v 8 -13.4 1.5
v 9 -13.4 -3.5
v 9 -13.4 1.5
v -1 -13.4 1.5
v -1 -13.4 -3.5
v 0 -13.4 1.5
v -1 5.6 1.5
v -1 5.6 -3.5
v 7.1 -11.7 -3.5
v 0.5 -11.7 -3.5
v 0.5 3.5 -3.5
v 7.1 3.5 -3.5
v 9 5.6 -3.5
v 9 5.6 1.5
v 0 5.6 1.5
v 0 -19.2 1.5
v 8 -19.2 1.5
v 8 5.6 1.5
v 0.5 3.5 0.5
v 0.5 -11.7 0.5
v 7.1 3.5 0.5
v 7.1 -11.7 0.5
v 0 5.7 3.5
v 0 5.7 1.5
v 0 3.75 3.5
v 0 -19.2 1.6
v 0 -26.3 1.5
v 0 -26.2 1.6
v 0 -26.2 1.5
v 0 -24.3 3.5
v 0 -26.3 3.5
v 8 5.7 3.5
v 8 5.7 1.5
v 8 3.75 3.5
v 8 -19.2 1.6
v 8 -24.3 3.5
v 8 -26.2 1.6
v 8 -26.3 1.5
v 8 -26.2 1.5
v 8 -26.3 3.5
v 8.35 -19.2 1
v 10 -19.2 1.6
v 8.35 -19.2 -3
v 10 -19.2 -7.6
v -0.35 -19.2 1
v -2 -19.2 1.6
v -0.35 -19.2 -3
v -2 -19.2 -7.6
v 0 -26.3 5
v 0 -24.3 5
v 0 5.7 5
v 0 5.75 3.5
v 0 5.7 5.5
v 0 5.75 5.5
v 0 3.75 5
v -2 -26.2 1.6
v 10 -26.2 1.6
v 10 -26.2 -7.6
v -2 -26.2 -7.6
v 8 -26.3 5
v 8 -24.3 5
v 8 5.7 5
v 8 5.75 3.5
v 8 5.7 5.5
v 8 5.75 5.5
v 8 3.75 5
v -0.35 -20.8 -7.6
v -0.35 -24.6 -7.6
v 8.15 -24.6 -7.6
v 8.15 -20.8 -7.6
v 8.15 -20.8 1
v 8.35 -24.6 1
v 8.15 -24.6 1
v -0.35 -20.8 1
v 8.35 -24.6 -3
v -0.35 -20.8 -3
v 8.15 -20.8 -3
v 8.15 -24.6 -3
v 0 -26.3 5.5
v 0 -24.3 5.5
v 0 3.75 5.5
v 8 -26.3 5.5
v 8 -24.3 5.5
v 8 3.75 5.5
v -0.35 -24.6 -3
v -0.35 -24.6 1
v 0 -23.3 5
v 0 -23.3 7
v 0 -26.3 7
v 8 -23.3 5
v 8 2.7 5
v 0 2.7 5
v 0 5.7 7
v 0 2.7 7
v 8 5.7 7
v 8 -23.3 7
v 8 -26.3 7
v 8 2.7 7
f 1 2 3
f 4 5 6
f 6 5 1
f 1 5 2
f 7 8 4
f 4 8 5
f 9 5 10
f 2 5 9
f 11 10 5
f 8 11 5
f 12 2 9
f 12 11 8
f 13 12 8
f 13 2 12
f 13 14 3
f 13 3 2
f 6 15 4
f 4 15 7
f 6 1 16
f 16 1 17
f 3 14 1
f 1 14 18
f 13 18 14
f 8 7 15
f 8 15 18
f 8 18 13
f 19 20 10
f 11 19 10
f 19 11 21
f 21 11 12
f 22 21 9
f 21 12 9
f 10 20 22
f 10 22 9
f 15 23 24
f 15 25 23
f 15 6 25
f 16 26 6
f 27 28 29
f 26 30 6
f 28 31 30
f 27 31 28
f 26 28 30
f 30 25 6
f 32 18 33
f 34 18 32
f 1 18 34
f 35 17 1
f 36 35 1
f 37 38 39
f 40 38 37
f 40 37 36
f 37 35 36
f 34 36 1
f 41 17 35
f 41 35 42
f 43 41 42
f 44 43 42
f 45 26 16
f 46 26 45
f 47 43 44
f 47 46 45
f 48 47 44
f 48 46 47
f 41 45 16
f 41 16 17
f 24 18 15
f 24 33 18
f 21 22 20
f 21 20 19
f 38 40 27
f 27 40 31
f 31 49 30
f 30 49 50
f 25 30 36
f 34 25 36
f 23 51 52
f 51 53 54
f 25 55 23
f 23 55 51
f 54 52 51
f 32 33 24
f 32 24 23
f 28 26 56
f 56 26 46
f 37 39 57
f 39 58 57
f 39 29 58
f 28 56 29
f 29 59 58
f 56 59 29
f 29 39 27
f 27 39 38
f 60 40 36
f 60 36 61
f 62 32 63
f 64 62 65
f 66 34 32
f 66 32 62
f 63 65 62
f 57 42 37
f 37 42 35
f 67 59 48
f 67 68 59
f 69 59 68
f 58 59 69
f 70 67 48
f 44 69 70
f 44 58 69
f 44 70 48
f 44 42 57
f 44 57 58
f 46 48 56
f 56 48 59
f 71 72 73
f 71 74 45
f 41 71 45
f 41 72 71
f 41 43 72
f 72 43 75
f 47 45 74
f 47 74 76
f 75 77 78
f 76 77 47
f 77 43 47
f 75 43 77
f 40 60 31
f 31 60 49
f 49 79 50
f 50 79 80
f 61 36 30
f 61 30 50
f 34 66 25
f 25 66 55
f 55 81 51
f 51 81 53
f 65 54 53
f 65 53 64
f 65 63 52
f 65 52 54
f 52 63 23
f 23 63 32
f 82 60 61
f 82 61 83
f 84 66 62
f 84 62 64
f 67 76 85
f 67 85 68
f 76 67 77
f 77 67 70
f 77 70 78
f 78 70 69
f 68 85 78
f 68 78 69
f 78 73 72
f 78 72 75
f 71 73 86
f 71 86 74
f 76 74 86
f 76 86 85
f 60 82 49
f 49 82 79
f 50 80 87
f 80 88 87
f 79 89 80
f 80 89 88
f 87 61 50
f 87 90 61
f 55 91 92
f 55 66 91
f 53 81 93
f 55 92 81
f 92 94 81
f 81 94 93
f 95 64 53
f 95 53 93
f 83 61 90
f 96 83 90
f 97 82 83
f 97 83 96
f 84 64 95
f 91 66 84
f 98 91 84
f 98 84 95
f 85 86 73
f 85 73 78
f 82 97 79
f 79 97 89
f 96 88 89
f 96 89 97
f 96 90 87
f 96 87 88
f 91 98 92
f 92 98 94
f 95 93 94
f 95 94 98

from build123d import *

# Parameters (mm, degrees)
BOX018_W               = 5.8
BOX018_H               = 8.7
BOX018_DEPTH           = 4
BOX019_W               = 1.6
BOX019_H               = 3.6
BOX019_DEPTH           = 8.5
BOX016_W               = 3.8
BOX016_H               = 8.5
BOX016_DEPTH           = 9.3
BOX017_W               = 7
BOX017_H               = 12
BOX017_DEPTH           = 9.2
CUT002_ROLL_ANGLE      = 180
CUT002_PLACEMENT_ANGLE = 90
BOX010_W               = 8
BOX010_H               = 3
BOX010_DEPTH           = 2
BOX009_W               = 8
BOX009_H               = 2
BOX009_DEPTH           = 2
BOX011_W               = 8
BOX011_H               = 2
BOX011_DEPTH           = 2
BOX012_W               = 8
BOX012_H               = 3
BOX012_DEPTH           = 2
BOX013_W               = 8
BOX013_H               = 32
BOX013_DEPTH           = 2
BOX014_W               = 15.2
BOX014_H               = 6.6
BOX014_DEPTH           = 4.5
BOX015_W               = 19
BOX015_H               = 10
BOX015_DEPTH           = 5
CUT001_ROLL_ANGLE      = 180
CUT001_PLACEMENT_ANGLE = 90


with BuildPart() as cube017:
    # Box018 → Box018 (new body)
    with BuildSketch(Plane.XY):
        with Locations((2.9, 4.35)):
            Rectangle(BOX018_W, BOX018_H)
    extrude(amount=BOX018_DEPTH)


with BuildPart() as cube018:
    # Box019 → Box019 (new body)
    with BuildSketch(Plane(origin=(1.1, 2.5, 1), x_dir=(1, 0, 0), z_dir=(0, 0, 1))):
        with Locations((0.8, 1.8)):
            Rectangle(BOX019_W, BOX019_H)
    extrude(amount=BOX019_DEPTH)


with BuildPart() as fusion008:
    # Box016 → Box016 (new body)
    with BuildSketch(Plane.XY):
        with Locations((1.9, 4.25)):
            Rectangle(BOX016_W, BOX016_H)
    extrude(amount=BOX016_DEPTH)

    # Fusion008: union Cube017, Cube018
    add(cube017.part)
    add(cube018.part)


with BuildPart() as cut002:
    # Box017 → Box017 (new body)
    with BuildSketch(Plane(origin=(-1.6, -1.65, -0.6), x_dir=(1, 0, 0), z_dir=(0, 0, 1))):
        with Locations((3.5, 6)):
            Rectangle(BOX017_W, BOX017_H)
    extrude(amount=BOX017_DEPTH)

    # Cut002: cut Fusion008
    add(fusion008.part, mode=Mode.SUBTRACT)


with BuildPart() as cut002_1:
    # Cut002 roll: moved
    add(cut002.part.rotate(Axis((0, 0, 0), (1, 0, 0)), CUT002_ROLL_ANGLE))


with BuildPart() as cut002_2:
    # Cut002 placement: moved
    add(cut002_1.part.moved(Location((-0.35, -24.6, 1))).rotate(Axis((-0.35, -24.6, 1), (0, 0, 1)), CUT002_PLACEMENT_ANGLE))


with BuildPart() as cube010:
    # Box010 → Box010 (new body)
    with BuildSketch(Plane(origin=(0, 2.7, 5), x_dir=(1, 0, 0), z_dir=(0, 0, 1))):
        with Locations((4, 1.5)):
            Rectangle(BOX010_W, BOX010_H)
    extrude(amount=BOX010_DEPTH)


with BuildPart() as fusion006:
    # Box009 → Box009 (new body)
    with BuildSketch(Plane(origin=(0, 3.75, 3.5), x_dir=(1, 0, 0), z_dir=(0, 0, 1))):
        with Locations((4, 1)):
            Rectangle(BOX009_W, BOX009_H)
    extrude(amount=BOX009_DEPTH)

    # Fusion006: union Cube010
    add(cube010.part)


with BuildPart() as cube011:
    # Box011 → Box011 (new body)
    with BuildSketch(Plane(origin=(0, -26.3, 3.5), x_dir=(1, 0, 0), z_dir=(0, 0, 1))):
        with Locations((4, 1)):
            Rectangle(BOX011_W, BOX011_H)
    extrude(amount=BOX011_DEPTH)


with BuildPart() as fusion005:
    # Box012 → Box012 (new body)
    with BuildSketch(Plane(origin=(0, -26.3, 5), x_dir=(1, 0, 0), z_dir=(0, 0, 1))):
        with Locations((4, 1.5)):
            Rectangle(BOX012_W, BOX012_H)
    extrude(amount=BOX012_DEPTH)

    # Fusion005: union Cube011
    add(cube011.part)


with BuildPart() as fusion007:
    # Box013 → Box013 (new body)
    with BuildSketch(Plane(origin=(0, -26.3, 1.5), x_dir=(1, 0, 0), z_dir=(0, 0, 1))):
        with Locations((4, 16)):
            Rectangle(BOX013_W, BOX013_H)
    extrude(amount=BOX013_DEPTH)

    # Fusion007: union Fusion006, Fusion005
    add(fusion006.part)
    add(fusion005.part)


with BuildPart() as converter:
    # Box014 → Box014 (new body)
    with BuildSketch(Plane.XY):
        with Locations((7.6, 3.3)):
            Rectangle(BOX014_W, BOX014_H)
    extrude(amount=BOX014_DEPTH)


with BuildPart() as fusion009:
    # Box015 → Box015 (new body)
    with BuildSketch(Plane(origin=(-1.7, -1.5, -1), x_dir=(1, 0, 0), z_dir=(0, 0, 1))):
        with Locations((9.5, 5)):
            Rectangle(BOX015_W, BOX015_H)
    extrude(amount=BOX015_DEPTH)

    # Cut001: cut converter
    add(converter.part, mode=Mode.SUBTRACT)


with BuildPart() as fusion009_1:
    # Cut001 roll: moved
    add(fusion009.part.rotate(Axis((0, 0, 0), (1, 0, 0)), CUT001_ROLL_ANGLE))


with BuildPart() as fusion009_2:
    # Cut001 placement: moved
    add(fusion009_1.part.moved(Location((0.5, -11.7, 0.5))).rotate(Axis((0.5, -11.7, 0.5), (0, 0, 1)), CUT001_PLACEMENT_ANGLE))

    # Fusion009: union Cut002, Fusion007
    add(cut002_2.part)
    add(fusion007.part)


solid = fusion009_2.part
